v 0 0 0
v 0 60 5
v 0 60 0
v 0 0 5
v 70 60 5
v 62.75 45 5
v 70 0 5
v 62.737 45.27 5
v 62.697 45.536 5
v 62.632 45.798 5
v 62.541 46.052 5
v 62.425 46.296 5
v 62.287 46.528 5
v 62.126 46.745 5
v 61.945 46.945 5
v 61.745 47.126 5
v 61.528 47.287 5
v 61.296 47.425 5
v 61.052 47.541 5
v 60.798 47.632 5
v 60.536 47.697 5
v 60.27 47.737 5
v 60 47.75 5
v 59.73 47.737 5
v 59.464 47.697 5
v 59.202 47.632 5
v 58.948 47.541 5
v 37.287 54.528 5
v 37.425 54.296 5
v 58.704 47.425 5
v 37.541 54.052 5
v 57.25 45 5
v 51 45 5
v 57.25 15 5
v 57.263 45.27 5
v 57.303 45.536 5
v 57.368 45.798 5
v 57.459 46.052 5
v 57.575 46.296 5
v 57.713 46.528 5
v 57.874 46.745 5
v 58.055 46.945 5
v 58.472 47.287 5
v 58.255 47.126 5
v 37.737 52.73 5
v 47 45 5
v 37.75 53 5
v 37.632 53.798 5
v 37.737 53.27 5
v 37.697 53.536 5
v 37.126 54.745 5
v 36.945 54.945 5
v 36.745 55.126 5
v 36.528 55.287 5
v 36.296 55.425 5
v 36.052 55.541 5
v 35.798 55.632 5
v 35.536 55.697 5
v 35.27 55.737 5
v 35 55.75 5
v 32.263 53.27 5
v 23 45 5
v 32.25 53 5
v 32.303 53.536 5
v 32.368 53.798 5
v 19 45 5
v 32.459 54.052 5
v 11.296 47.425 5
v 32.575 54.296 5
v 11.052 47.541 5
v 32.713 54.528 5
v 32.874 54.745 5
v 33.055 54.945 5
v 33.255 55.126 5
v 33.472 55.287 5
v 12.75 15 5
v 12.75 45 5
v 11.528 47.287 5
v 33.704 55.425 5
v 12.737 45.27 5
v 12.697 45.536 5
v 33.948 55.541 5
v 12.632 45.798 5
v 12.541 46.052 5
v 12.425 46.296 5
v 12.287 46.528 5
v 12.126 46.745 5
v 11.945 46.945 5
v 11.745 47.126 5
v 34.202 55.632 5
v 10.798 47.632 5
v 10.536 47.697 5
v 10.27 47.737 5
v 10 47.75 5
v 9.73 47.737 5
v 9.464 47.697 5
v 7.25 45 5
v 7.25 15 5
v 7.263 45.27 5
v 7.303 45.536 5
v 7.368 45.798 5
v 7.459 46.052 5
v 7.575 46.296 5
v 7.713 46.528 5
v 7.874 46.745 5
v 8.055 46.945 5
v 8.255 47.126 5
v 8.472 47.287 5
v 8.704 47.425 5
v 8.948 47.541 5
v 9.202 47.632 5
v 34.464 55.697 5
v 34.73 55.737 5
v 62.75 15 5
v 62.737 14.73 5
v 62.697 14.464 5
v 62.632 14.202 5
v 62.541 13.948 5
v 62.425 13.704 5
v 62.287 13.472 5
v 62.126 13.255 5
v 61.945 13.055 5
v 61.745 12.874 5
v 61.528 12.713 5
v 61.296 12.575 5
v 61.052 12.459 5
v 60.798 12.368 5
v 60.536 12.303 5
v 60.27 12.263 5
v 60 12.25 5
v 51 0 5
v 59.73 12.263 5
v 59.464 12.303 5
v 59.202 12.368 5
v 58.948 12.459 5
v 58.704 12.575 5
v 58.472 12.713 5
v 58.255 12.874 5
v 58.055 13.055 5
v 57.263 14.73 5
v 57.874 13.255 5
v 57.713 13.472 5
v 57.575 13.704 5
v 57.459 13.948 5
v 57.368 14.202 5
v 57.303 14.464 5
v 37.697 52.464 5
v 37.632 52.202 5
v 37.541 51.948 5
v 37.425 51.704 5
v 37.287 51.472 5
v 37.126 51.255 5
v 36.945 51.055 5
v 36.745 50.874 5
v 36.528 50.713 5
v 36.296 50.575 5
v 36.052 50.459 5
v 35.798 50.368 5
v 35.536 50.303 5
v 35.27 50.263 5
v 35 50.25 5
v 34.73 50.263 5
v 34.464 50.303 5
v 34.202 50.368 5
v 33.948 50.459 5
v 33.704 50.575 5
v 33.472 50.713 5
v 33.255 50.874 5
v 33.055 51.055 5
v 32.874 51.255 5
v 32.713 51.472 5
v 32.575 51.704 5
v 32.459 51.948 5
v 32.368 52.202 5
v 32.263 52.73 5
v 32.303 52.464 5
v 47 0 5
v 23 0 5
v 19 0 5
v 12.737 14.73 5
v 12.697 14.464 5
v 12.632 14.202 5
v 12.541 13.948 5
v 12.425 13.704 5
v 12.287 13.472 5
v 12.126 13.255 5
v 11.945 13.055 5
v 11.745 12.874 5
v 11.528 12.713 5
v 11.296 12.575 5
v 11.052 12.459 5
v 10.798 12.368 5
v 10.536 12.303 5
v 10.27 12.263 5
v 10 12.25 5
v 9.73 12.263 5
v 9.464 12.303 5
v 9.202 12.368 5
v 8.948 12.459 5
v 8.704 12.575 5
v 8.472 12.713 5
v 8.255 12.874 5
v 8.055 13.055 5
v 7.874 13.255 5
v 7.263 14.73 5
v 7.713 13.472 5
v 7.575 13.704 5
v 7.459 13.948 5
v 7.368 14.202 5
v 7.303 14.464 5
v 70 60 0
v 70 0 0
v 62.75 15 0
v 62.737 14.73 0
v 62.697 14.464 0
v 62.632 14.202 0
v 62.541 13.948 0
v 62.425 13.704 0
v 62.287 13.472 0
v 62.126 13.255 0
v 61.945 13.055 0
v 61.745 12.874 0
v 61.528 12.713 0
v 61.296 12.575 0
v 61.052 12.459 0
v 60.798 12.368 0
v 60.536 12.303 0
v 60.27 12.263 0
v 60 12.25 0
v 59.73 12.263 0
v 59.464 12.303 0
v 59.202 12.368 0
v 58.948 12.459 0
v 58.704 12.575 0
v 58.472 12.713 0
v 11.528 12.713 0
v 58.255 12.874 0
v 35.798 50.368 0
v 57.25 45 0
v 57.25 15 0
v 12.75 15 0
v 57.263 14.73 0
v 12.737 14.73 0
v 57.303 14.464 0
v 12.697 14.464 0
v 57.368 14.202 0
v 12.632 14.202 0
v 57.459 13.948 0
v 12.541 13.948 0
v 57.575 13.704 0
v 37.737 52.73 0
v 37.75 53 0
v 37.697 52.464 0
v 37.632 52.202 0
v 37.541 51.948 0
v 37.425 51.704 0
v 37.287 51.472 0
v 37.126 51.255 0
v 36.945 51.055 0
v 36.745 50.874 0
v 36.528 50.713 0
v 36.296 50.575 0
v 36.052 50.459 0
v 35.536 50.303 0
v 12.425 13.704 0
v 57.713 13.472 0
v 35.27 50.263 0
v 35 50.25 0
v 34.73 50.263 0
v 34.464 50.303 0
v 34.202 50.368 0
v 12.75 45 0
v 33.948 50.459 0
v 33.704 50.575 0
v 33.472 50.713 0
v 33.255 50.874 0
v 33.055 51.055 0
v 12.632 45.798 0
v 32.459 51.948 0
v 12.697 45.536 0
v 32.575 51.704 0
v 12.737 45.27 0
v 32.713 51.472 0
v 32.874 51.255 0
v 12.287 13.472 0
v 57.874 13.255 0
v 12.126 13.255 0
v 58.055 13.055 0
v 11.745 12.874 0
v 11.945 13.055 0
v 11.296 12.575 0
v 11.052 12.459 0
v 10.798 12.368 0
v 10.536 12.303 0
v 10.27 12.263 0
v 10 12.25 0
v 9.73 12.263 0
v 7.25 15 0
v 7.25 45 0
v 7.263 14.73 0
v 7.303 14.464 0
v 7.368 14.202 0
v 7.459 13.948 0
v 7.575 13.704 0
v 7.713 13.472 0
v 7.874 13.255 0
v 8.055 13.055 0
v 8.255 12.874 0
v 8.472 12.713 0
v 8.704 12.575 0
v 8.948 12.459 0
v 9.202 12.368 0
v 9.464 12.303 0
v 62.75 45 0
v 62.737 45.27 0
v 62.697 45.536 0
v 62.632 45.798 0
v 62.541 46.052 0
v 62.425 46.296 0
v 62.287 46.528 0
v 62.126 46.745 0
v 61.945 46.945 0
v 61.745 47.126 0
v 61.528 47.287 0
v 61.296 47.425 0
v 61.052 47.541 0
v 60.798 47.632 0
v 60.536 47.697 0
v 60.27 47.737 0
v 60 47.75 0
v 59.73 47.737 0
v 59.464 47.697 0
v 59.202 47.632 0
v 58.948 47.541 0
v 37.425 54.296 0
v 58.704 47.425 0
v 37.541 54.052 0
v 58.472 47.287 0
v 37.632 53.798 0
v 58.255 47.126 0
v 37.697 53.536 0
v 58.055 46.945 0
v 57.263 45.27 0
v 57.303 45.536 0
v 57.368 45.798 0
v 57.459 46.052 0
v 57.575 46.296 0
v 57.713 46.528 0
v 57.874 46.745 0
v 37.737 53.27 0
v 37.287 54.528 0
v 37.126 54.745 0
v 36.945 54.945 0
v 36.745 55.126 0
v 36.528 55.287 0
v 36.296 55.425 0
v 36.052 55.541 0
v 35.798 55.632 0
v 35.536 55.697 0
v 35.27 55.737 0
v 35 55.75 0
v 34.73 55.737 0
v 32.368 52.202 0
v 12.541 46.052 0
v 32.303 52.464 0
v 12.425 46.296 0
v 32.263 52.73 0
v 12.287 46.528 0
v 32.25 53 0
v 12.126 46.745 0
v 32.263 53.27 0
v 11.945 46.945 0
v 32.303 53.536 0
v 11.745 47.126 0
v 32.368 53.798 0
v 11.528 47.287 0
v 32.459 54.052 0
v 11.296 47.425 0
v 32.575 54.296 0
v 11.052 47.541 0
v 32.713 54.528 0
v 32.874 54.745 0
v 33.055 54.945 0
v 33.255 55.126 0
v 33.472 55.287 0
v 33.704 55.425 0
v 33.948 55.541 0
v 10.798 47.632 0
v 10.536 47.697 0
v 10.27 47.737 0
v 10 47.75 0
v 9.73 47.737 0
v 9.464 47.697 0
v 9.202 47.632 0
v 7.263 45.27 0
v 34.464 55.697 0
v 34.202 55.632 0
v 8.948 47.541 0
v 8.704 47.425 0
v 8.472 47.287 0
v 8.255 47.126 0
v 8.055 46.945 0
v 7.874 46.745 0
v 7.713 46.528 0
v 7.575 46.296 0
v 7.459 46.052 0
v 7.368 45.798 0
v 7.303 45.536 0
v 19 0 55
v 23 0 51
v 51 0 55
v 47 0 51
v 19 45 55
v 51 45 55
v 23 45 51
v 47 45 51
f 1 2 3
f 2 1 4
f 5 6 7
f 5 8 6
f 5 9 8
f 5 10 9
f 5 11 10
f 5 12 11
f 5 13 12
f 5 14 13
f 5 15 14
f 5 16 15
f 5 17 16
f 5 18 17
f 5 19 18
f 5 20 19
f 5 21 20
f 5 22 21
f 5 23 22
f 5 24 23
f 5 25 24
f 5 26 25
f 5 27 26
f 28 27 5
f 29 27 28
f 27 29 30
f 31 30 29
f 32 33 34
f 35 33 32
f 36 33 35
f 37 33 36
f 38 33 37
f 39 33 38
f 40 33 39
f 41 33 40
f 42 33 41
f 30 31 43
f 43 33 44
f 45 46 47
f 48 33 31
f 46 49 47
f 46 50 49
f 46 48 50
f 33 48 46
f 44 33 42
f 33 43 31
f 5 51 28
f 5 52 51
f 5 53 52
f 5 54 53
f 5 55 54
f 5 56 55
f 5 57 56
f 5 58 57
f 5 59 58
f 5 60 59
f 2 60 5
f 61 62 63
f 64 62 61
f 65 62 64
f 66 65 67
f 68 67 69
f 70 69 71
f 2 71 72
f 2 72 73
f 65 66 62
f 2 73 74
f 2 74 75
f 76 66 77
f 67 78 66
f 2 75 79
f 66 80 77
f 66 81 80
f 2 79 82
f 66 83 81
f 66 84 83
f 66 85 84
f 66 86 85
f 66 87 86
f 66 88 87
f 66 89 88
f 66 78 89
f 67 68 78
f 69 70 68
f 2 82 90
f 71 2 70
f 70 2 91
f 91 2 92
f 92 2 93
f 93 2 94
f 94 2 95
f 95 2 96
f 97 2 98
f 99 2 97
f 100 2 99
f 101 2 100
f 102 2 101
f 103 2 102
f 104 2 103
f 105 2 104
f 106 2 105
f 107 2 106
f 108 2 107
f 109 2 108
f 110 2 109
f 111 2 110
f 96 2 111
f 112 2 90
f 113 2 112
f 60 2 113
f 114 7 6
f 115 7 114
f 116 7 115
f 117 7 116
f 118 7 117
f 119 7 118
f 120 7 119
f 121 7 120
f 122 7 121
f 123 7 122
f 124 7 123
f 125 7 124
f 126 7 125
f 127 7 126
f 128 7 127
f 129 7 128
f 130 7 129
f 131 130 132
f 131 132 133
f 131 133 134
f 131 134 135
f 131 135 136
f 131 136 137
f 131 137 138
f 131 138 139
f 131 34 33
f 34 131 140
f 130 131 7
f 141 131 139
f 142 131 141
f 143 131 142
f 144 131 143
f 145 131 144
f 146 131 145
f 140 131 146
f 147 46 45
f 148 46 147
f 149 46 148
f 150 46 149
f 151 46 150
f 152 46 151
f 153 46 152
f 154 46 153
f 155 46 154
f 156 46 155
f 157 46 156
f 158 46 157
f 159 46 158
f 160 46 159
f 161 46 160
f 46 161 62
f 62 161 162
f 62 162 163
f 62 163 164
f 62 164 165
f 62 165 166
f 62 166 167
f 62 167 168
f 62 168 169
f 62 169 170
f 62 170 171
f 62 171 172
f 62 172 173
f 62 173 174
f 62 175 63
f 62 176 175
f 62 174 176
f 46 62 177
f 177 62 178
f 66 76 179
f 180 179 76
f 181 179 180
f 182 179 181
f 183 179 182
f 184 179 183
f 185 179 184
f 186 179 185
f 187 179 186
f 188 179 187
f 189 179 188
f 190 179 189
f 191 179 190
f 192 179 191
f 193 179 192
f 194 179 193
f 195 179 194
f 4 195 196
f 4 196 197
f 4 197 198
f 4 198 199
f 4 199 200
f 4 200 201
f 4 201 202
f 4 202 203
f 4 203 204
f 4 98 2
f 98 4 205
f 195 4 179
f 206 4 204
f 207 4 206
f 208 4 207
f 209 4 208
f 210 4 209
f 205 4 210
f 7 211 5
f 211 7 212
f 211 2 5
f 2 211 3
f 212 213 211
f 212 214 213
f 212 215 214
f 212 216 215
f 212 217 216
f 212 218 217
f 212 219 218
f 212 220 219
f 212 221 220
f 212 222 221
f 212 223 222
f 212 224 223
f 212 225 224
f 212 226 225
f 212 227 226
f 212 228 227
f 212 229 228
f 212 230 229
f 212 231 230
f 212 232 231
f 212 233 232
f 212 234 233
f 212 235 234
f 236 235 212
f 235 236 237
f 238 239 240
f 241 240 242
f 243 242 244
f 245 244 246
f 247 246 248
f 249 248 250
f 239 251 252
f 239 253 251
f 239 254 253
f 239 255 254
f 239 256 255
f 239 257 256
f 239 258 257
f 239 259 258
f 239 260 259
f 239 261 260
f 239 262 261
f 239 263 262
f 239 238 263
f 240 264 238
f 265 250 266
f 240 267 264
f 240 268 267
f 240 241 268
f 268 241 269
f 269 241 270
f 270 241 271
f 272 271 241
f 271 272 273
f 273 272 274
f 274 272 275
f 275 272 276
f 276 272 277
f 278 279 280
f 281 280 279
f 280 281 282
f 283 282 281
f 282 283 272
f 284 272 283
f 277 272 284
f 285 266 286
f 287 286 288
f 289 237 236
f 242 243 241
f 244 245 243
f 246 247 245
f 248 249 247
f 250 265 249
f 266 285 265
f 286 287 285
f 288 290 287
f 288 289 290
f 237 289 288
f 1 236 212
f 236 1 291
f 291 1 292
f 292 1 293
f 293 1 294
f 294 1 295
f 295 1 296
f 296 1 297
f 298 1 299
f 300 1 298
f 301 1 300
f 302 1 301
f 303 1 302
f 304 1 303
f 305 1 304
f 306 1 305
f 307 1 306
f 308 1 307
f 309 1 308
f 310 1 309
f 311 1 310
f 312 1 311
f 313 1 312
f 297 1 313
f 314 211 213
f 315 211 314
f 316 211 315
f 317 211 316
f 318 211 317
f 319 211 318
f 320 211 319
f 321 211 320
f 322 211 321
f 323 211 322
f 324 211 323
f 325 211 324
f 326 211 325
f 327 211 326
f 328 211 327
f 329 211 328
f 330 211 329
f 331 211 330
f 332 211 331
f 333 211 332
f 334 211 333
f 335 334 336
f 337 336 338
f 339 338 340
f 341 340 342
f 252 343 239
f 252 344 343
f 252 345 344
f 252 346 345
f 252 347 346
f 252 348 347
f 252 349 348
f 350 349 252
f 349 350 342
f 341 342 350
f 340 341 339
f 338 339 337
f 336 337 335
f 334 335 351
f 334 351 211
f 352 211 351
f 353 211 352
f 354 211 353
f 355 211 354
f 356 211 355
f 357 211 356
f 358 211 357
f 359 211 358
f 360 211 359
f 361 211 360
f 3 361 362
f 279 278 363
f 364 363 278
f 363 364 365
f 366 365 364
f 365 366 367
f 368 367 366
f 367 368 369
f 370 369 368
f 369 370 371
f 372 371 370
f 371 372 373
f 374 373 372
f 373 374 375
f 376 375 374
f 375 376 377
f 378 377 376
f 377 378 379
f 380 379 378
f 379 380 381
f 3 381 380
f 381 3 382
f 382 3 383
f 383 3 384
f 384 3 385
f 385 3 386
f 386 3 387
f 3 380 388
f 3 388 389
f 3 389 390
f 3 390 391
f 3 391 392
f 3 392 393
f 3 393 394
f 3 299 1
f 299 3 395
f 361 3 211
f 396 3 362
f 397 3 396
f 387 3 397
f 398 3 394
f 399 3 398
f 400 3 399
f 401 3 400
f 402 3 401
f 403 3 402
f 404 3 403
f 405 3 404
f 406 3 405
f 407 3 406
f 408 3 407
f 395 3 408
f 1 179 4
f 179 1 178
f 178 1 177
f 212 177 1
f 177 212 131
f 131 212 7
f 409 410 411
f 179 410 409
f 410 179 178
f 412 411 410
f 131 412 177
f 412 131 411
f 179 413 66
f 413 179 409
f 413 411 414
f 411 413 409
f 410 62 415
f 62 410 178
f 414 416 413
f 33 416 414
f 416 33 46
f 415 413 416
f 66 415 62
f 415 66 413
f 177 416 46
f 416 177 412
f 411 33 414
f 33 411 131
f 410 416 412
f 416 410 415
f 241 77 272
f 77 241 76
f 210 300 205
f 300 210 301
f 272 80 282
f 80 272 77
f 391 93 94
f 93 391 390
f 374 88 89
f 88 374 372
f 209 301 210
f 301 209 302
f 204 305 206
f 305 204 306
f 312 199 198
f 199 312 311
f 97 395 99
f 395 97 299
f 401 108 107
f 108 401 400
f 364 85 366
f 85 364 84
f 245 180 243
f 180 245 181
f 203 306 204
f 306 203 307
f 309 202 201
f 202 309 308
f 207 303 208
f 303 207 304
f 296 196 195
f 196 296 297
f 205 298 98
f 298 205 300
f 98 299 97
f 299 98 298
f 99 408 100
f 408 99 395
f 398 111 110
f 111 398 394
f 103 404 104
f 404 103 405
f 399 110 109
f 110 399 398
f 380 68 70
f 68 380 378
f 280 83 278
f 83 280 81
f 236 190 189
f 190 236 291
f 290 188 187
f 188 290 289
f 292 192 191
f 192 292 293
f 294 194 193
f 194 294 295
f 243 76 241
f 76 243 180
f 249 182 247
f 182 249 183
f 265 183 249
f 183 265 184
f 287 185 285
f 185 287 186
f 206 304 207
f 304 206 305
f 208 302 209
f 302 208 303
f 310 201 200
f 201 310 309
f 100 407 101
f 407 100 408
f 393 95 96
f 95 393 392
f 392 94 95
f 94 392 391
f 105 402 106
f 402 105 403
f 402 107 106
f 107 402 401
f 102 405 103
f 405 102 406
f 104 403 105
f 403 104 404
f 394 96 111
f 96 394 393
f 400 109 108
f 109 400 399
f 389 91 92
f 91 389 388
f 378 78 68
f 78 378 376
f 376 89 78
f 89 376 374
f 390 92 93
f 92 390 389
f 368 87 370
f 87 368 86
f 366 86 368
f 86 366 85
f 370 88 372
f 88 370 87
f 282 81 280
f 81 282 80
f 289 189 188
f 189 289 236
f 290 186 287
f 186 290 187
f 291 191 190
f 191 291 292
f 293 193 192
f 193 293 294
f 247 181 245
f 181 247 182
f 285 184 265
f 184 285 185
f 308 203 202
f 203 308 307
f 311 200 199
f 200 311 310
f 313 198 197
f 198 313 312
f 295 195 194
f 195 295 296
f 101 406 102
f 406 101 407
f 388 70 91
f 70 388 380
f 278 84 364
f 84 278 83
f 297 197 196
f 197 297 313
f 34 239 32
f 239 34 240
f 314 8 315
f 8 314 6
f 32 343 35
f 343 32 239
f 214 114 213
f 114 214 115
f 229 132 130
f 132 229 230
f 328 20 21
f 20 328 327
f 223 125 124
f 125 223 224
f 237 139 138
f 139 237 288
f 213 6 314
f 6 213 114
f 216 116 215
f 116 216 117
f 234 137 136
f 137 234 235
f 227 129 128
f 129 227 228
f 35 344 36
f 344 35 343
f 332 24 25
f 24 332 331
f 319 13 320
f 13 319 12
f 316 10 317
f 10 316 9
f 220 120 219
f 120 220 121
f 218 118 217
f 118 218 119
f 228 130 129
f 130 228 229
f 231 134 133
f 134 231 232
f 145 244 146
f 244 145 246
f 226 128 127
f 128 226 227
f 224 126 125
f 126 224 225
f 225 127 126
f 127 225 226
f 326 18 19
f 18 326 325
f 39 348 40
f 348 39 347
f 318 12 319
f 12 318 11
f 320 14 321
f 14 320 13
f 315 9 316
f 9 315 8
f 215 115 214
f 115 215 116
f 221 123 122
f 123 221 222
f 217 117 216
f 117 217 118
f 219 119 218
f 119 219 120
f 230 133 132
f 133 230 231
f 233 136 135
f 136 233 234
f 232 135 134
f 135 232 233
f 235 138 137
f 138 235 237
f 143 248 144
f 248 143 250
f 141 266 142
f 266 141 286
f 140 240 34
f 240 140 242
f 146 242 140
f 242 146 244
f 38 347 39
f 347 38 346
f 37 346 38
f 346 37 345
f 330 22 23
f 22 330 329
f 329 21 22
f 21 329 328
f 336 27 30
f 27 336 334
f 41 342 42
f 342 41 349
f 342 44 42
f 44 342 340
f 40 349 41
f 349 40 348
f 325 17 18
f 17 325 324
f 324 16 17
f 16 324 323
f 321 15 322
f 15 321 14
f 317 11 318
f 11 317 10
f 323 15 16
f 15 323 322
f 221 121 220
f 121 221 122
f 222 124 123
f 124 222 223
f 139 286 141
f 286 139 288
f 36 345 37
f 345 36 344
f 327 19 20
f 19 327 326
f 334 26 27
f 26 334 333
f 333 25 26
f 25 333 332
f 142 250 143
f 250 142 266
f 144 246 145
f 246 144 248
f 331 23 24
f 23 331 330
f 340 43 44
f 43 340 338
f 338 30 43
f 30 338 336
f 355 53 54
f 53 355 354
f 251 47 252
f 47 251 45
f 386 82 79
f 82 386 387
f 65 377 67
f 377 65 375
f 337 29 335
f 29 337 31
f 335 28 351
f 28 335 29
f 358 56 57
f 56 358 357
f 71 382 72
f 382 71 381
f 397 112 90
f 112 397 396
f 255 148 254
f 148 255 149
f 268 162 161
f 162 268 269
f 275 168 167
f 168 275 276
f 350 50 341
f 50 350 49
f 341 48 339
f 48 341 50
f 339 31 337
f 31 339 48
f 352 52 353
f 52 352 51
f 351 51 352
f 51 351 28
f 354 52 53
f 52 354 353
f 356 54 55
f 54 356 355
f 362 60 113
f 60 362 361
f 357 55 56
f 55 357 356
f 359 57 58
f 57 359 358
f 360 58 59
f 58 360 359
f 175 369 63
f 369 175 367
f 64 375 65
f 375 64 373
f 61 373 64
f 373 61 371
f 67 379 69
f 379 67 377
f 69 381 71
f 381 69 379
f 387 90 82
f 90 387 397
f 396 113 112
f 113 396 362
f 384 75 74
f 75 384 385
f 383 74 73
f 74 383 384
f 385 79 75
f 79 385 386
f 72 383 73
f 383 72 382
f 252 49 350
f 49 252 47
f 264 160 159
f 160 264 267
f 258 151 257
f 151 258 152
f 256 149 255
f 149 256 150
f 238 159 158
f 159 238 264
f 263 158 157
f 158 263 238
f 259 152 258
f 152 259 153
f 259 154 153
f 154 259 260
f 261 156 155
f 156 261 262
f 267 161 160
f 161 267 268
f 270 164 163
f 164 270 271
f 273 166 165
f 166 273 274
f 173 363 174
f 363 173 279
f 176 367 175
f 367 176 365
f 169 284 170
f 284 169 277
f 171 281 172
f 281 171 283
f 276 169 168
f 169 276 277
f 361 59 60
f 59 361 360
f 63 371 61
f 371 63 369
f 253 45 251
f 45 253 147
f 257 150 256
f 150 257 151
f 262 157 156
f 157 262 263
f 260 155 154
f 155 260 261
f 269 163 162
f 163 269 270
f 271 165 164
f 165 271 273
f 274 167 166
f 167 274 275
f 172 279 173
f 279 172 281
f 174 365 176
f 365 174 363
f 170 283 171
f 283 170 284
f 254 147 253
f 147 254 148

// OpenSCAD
// Original MechIntel educational model. CC0-1.0. Units: mm.
// Not a standardized or load-rated component.
$fn=96;
width=70; depth=60; height=55; base=5; wall=4; clearance=24; hood_depth=45;
$fn=64;
difference(){
 union(){
 cube([width,depth,base]);
 translate([(width-clearance)/2-wall,0,base]) cube([wall,hood_depth,height-base]);
 translate([(width+clearance)/2,0,base]) cube([wall,hood_depth,height-base]);
 translate([(width-clearance)/2-wall,0,height-wall]) cube([clearance+2*wall,hood_depth,wall]);
 }
 for(x=[10,width-10]) hull(){translate([x,15,-1]) cylinder(d=5.5,h=base+2);translate([x,45,-1]) cylinder(d=5.5,h=base+2);}
 translate([width/2,53,-1]) cylinder(d=5.5,h=base+2);
}
